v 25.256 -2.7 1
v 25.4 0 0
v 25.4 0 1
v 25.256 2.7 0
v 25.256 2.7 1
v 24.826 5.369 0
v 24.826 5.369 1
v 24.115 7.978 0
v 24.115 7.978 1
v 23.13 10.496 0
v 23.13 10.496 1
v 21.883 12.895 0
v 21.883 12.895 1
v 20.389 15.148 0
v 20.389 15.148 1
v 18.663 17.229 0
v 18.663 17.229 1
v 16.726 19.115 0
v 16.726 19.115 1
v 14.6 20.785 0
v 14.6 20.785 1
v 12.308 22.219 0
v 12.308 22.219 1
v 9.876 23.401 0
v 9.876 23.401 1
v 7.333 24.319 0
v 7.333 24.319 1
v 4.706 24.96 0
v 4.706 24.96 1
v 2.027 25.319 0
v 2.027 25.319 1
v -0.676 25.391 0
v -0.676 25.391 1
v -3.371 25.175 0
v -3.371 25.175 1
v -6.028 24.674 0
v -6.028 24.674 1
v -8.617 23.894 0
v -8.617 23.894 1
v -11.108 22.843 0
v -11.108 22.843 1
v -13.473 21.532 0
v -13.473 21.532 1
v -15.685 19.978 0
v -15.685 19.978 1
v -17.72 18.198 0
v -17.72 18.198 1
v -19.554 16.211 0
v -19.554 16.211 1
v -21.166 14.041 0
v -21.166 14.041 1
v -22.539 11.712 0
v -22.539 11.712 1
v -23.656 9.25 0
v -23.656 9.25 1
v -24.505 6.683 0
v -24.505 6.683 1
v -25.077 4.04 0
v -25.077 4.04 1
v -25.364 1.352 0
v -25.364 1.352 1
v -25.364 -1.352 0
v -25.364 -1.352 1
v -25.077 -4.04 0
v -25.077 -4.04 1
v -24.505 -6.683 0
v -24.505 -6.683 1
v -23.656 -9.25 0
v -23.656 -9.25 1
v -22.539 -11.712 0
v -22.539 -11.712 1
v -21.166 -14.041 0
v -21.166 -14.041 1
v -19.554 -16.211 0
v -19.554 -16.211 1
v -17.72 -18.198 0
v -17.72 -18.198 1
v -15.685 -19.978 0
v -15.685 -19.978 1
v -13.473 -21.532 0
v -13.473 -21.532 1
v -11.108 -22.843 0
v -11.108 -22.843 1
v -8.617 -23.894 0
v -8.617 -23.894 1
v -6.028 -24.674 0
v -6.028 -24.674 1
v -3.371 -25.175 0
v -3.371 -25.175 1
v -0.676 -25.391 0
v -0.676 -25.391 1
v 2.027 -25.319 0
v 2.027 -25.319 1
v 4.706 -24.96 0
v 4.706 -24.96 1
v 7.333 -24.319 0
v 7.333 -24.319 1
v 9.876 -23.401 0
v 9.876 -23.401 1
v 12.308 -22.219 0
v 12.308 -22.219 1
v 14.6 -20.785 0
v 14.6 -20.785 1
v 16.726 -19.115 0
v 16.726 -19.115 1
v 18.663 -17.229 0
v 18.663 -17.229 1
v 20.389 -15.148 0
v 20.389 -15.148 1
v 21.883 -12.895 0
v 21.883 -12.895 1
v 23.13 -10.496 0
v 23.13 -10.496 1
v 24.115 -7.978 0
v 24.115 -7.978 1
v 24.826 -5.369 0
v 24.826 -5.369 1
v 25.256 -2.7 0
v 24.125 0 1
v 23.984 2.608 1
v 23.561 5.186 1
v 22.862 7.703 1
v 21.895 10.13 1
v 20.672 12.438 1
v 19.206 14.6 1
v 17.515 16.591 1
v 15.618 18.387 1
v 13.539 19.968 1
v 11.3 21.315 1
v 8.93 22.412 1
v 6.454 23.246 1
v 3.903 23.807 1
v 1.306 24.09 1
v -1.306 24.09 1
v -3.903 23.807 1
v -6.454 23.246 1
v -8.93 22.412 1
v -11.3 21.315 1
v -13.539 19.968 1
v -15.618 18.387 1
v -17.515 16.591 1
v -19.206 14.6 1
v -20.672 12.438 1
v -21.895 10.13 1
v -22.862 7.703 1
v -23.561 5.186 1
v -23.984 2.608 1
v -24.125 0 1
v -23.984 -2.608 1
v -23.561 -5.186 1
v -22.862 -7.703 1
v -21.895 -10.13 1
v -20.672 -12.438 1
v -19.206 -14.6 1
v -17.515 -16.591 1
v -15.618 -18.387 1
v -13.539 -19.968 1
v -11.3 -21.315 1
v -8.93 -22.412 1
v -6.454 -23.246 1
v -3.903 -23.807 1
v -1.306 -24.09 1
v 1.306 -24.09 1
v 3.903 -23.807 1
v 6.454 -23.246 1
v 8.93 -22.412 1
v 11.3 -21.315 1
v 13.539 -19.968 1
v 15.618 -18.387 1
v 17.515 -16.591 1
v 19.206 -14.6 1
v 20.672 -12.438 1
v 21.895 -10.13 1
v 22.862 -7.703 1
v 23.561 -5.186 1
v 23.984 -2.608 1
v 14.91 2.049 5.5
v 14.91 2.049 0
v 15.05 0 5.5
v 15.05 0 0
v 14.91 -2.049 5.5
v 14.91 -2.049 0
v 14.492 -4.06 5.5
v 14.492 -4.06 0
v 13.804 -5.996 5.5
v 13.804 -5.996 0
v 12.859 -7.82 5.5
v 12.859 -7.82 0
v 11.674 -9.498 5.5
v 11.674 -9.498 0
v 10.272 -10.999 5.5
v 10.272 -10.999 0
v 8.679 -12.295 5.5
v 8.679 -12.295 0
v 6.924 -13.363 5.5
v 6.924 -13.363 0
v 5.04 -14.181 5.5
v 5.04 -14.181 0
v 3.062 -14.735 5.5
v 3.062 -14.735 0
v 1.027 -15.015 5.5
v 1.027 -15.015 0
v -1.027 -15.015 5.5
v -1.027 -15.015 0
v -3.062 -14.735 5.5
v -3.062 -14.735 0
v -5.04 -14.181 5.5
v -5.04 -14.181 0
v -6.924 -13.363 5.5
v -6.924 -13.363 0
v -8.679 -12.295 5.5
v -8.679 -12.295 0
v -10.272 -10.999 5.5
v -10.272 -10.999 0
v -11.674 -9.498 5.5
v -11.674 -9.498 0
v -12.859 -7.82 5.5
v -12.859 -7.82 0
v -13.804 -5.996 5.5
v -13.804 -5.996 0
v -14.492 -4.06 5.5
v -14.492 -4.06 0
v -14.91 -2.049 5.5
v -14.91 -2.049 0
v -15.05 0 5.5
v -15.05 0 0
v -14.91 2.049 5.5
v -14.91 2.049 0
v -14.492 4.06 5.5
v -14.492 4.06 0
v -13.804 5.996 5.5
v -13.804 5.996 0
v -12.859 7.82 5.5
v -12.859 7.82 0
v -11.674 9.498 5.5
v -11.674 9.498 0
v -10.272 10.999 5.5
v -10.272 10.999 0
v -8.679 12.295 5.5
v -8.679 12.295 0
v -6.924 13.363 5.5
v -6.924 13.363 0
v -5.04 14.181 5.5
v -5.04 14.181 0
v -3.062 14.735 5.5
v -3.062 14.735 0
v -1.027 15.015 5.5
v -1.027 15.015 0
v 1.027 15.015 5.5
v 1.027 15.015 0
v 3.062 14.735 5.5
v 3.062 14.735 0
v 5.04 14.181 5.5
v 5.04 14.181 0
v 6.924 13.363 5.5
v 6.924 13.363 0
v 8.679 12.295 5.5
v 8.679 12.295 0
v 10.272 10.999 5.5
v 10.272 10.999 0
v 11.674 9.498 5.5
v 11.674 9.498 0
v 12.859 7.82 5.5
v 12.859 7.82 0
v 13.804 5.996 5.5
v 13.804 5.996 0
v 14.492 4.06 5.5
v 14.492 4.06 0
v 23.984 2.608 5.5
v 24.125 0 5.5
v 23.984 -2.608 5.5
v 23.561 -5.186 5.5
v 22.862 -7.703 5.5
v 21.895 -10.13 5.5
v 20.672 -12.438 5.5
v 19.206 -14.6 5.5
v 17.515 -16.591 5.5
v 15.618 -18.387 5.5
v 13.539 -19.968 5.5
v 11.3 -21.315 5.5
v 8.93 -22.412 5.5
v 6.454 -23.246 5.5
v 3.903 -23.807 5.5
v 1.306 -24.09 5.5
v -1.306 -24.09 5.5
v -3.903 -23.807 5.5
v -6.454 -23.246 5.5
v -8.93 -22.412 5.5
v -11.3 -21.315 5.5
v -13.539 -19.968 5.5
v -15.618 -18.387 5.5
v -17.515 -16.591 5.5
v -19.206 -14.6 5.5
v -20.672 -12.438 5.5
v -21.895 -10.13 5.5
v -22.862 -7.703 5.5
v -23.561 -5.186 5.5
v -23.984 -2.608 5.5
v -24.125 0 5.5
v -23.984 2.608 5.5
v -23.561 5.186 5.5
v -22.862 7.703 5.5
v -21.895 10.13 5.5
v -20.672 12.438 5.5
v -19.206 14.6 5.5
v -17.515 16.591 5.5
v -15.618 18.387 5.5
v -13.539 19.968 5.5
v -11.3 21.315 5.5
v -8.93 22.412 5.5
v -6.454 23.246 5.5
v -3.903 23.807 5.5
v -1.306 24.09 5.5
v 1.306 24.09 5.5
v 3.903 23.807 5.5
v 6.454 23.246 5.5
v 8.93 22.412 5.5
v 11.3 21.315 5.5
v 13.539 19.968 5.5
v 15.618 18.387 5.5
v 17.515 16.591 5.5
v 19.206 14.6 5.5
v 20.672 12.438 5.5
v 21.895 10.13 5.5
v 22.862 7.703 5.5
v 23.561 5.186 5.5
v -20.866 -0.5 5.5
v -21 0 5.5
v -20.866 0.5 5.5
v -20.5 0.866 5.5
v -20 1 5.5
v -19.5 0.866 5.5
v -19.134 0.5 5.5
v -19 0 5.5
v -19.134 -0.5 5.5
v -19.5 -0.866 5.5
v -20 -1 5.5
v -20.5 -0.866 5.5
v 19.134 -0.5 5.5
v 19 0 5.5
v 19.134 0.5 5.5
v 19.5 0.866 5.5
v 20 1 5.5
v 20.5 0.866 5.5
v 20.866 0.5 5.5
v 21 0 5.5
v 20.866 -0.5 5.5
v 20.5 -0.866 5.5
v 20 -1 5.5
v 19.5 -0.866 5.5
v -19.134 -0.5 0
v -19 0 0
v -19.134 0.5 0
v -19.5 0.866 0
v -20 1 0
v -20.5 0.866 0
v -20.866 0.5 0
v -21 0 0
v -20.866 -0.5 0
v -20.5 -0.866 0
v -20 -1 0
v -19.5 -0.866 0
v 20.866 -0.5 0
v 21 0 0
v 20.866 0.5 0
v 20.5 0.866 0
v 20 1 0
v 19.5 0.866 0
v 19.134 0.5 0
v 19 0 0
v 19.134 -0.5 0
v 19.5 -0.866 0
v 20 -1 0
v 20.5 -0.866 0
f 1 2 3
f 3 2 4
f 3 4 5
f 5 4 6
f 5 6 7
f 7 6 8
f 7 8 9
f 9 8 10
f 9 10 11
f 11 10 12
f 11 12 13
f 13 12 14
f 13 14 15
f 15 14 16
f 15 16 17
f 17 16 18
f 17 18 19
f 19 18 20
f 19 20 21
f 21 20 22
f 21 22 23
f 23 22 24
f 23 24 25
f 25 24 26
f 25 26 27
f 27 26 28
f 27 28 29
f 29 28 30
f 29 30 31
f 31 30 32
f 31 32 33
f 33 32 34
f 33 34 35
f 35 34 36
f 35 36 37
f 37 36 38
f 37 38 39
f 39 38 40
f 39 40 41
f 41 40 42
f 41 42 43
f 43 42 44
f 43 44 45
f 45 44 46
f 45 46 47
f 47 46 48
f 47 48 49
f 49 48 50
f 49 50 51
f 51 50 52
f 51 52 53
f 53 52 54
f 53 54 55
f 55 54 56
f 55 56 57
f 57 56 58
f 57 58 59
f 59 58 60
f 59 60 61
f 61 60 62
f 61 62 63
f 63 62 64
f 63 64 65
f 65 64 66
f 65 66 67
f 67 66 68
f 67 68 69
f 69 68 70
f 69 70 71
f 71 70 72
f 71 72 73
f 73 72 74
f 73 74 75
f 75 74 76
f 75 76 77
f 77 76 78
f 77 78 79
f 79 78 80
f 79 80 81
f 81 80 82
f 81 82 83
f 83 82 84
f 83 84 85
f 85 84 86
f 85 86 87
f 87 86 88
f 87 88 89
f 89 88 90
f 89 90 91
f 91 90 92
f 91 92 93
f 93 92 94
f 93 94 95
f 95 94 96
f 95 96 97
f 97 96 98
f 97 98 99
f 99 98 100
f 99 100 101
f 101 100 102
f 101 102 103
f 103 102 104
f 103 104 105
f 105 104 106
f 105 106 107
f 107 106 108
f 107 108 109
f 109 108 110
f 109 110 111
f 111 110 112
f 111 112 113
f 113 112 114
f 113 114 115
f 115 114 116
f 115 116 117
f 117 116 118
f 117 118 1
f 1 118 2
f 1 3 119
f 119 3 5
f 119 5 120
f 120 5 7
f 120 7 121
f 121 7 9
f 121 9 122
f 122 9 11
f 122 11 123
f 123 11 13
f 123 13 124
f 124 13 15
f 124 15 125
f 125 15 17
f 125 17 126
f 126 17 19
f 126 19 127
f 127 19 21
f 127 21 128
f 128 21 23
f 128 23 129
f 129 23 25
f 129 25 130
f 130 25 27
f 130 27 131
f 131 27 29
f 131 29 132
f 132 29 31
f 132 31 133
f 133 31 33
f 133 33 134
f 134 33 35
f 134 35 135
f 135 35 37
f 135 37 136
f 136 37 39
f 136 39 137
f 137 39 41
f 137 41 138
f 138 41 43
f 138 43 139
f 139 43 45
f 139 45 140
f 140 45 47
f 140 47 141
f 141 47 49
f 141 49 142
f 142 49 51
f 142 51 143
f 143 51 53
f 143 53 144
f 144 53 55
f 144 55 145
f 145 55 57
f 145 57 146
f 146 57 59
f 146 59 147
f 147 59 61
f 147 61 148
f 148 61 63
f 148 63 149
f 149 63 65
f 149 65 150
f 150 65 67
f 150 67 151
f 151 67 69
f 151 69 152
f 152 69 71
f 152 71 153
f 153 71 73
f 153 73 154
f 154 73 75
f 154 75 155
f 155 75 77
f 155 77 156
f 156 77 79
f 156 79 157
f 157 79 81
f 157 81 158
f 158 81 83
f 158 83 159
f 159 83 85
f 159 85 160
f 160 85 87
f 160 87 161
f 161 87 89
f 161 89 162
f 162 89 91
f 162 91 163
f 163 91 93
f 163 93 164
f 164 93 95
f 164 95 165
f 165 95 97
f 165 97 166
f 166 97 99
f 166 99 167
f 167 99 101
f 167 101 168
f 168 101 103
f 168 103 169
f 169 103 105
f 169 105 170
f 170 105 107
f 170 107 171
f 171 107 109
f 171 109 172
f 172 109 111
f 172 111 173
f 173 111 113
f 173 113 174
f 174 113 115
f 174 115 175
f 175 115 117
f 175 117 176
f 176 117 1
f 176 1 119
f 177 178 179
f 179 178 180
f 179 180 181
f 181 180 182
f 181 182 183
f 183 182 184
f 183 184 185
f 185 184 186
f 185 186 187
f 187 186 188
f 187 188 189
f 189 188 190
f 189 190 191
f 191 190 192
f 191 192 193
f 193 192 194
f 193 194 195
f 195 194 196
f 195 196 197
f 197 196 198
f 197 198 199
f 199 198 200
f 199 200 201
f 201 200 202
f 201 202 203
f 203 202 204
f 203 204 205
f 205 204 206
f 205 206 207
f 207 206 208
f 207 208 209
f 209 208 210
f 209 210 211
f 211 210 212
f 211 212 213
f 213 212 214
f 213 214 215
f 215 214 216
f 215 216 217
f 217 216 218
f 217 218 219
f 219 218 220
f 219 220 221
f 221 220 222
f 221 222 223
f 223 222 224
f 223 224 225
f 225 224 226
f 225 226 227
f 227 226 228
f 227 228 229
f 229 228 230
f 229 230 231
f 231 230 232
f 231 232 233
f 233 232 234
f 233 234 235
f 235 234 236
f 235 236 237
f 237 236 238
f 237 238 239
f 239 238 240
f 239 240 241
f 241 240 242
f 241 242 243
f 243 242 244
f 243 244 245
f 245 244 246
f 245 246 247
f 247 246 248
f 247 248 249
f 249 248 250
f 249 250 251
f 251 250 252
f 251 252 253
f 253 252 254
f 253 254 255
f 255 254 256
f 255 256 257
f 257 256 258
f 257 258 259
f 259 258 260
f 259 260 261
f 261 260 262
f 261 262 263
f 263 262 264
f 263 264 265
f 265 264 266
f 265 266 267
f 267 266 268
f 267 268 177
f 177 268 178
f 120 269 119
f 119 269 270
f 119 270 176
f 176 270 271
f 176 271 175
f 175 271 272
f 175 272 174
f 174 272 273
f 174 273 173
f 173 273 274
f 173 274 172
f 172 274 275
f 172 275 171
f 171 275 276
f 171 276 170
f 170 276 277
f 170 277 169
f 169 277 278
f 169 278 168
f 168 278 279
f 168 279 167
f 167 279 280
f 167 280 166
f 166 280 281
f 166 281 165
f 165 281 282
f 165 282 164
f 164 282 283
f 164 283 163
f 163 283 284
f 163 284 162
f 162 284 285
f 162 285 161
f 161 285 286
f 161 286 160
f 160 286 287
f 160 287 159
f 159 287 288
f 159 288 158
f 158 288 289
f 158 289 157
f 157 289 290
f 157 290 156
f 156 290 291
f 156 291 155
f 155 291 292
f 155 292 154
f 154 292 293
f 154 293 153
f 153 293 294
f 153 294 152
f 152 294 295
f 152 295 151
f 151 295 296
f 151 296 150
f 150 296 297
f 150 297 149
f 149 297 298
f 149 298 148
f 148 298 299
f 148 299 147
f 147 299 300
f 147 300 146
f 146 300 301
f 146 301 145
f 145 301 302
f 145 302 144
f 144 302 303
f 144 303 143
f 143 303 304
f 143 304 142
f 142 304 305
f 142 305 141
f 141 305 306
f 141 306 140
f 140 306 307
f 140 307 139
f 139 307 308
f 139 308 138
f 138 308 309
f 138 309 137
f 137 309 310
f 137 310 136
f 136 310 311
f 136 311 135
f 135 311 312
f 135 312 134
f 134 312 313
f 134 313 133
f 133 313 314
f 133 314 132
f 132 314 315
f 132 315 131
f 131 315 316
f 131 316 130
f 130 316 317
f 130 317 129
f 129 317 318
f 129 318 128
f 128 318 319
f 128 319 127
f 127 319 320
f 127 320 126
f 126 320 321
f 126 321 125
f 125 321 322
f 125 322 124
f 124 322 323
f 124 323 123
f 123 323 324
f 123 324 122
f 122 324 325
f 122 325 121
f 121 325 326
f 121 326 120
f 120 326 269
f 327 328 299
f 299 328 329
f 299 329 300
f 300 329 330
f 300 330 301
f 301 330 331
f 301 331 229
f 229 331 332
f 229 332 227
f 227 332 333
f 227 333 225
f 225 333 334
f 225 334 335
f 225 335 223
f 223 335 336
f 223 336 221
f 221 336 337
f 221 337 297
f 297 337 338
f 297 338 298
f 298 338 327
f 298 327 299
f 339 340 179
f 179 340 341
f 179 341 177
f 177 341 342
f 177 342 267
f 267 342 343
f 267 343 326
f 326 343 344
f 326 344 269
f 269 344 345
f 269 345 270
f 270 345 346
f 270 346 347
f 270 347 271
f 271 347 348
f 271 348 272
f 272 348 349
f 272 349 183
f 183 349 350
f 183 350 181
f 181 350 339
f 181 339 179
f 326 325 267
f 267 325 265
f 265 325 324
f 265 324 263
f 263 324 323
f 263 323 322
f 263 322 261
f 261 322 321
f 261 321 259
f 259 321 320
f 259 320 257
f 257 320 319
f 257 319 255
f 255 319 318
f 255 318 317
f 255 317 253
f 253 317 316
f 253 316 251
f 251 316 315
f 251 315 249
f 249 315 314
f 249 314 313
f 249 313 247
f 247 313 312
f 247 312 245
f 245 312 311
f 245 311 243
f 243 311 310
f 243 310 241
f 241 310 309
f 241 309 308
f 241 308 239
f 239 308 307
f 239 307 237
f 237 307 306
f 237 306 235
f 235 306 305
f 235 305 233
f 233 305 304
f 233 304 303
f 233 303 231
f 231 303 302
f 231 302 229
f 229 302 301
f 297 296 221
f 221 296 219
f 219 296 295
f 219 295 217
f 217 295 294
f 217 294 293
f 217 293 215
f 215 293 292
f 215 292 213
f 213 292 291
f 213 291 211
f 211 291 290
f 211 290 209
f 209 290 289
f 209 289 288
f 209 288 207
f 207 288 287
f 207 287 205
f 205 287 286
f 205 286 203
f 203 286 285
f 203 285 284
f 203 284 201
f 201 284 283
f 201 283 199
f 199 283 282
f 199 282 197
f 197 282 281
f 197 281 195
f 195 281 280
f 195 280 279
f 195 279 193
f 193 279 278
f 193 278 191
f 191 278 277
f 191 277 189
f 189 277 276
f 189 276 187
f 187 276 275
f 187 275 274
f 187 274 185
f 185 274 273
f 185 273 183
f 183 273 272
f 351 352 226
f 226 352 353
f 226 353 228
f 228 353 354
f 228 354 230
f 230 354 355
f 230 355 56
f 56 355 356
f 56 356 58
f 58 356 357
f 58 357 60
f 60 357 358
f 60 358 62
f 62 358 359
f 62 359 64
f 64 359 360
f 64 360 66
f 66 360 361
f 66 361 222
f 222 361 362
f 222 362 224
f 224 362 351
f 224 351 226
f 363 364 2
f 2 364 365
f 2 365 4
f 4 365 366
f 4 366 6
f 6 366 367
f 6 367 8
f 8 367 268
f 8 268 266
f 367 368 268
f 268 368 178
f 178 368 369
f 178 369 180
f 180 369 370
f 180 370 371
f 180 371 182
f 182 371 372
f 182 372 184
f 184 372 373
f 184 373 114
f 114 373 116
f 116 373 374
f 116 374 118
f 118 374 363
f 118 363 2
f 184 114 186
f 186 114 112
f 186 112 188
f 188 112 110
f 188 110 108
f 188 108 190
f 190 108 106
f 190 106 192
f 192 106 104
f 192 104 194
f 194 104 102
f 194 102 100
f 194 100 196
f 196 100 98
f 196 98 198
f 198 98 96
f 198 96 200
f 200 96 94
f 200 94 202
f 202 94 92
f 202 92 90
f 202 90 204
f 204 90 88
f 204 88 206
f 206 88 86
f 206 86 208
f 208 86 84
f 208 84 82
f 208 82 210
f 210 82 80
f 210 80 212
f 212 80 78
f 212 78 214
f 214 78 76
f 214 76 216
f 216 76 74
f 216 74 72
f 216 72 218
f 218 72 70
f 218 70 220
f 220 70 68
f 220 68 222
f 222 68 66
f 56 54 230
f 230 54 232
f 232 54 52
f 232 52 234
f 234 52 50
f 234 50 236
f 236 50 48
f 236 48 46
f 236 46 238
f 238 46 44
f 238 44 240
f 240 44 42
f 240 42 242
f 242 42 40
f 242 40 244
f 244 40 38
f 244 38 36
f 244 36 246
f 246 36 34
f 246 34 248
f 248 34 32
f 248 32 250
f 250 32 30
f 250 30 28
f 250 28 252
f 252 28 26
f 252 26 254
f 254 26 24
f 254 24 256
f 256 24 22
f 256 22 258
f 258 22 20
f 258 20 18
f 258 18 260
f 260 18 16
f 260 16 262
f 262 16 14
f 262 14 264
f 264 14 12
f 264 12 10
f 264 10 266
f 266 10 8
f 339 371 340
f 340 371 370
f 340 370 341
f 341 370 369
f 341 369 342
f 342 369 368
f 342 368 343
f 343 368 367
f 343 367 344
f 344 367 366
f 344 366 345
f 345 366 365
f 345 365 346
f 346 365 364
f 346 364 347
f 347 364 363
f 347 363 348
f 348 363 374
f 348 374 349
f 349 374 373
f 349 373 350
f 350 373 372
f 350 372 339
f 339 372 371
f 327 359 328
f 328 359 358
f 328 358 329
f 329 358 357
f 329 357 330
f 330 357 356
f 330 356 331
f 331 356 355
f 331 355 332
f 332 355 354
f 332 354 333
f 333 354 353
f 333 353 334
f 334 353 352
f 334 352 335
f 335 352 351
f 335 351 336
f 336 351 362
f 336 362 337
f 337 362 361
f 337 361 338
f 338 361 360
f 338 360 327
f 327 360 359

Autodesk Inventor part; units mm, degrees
ref_plane "YZ Plane" through (0, 0, 0) normal (1, 0, 0) x (0, 1, 0)
ref_plane "XZ Plane" through (0, 0, 0) normal (0, 1, 0) x (-1, 0, 0)
ref_plane "XY Plane" through (0, 0, 0) normal (0, 0, 1) x (1, 0, 0)
sketch "Sketch1" plane through (0, 0, 0) normal (0, 0, 1) x (1, 0, 0)
  circle A0 centre (0, 0) radius 15.05
  circle A1 centre (0, 0) radius 24.125
  circle A2 centre (0, 0) radius 25.4
  point P0 (-20, 0)
  point P1 (20, 0)
  dimension "d0" = 30.1
  dimension "d1" = 48.25
  dimension "d2" = 50.8
extrude "Extrusion1" add sketch "Sketch1" along normal blind 5.5 contours A1
extrude "Extrusion2" add sketch "Sketch1" along normal blind 1 contours A2
hole "Hole1" at (-20, 0, 0) at (20, 0, 0) direction (0, 0, 1) diameter 2 end through all
properties part number "Adapter-MitutoyoMT1-SM2"
